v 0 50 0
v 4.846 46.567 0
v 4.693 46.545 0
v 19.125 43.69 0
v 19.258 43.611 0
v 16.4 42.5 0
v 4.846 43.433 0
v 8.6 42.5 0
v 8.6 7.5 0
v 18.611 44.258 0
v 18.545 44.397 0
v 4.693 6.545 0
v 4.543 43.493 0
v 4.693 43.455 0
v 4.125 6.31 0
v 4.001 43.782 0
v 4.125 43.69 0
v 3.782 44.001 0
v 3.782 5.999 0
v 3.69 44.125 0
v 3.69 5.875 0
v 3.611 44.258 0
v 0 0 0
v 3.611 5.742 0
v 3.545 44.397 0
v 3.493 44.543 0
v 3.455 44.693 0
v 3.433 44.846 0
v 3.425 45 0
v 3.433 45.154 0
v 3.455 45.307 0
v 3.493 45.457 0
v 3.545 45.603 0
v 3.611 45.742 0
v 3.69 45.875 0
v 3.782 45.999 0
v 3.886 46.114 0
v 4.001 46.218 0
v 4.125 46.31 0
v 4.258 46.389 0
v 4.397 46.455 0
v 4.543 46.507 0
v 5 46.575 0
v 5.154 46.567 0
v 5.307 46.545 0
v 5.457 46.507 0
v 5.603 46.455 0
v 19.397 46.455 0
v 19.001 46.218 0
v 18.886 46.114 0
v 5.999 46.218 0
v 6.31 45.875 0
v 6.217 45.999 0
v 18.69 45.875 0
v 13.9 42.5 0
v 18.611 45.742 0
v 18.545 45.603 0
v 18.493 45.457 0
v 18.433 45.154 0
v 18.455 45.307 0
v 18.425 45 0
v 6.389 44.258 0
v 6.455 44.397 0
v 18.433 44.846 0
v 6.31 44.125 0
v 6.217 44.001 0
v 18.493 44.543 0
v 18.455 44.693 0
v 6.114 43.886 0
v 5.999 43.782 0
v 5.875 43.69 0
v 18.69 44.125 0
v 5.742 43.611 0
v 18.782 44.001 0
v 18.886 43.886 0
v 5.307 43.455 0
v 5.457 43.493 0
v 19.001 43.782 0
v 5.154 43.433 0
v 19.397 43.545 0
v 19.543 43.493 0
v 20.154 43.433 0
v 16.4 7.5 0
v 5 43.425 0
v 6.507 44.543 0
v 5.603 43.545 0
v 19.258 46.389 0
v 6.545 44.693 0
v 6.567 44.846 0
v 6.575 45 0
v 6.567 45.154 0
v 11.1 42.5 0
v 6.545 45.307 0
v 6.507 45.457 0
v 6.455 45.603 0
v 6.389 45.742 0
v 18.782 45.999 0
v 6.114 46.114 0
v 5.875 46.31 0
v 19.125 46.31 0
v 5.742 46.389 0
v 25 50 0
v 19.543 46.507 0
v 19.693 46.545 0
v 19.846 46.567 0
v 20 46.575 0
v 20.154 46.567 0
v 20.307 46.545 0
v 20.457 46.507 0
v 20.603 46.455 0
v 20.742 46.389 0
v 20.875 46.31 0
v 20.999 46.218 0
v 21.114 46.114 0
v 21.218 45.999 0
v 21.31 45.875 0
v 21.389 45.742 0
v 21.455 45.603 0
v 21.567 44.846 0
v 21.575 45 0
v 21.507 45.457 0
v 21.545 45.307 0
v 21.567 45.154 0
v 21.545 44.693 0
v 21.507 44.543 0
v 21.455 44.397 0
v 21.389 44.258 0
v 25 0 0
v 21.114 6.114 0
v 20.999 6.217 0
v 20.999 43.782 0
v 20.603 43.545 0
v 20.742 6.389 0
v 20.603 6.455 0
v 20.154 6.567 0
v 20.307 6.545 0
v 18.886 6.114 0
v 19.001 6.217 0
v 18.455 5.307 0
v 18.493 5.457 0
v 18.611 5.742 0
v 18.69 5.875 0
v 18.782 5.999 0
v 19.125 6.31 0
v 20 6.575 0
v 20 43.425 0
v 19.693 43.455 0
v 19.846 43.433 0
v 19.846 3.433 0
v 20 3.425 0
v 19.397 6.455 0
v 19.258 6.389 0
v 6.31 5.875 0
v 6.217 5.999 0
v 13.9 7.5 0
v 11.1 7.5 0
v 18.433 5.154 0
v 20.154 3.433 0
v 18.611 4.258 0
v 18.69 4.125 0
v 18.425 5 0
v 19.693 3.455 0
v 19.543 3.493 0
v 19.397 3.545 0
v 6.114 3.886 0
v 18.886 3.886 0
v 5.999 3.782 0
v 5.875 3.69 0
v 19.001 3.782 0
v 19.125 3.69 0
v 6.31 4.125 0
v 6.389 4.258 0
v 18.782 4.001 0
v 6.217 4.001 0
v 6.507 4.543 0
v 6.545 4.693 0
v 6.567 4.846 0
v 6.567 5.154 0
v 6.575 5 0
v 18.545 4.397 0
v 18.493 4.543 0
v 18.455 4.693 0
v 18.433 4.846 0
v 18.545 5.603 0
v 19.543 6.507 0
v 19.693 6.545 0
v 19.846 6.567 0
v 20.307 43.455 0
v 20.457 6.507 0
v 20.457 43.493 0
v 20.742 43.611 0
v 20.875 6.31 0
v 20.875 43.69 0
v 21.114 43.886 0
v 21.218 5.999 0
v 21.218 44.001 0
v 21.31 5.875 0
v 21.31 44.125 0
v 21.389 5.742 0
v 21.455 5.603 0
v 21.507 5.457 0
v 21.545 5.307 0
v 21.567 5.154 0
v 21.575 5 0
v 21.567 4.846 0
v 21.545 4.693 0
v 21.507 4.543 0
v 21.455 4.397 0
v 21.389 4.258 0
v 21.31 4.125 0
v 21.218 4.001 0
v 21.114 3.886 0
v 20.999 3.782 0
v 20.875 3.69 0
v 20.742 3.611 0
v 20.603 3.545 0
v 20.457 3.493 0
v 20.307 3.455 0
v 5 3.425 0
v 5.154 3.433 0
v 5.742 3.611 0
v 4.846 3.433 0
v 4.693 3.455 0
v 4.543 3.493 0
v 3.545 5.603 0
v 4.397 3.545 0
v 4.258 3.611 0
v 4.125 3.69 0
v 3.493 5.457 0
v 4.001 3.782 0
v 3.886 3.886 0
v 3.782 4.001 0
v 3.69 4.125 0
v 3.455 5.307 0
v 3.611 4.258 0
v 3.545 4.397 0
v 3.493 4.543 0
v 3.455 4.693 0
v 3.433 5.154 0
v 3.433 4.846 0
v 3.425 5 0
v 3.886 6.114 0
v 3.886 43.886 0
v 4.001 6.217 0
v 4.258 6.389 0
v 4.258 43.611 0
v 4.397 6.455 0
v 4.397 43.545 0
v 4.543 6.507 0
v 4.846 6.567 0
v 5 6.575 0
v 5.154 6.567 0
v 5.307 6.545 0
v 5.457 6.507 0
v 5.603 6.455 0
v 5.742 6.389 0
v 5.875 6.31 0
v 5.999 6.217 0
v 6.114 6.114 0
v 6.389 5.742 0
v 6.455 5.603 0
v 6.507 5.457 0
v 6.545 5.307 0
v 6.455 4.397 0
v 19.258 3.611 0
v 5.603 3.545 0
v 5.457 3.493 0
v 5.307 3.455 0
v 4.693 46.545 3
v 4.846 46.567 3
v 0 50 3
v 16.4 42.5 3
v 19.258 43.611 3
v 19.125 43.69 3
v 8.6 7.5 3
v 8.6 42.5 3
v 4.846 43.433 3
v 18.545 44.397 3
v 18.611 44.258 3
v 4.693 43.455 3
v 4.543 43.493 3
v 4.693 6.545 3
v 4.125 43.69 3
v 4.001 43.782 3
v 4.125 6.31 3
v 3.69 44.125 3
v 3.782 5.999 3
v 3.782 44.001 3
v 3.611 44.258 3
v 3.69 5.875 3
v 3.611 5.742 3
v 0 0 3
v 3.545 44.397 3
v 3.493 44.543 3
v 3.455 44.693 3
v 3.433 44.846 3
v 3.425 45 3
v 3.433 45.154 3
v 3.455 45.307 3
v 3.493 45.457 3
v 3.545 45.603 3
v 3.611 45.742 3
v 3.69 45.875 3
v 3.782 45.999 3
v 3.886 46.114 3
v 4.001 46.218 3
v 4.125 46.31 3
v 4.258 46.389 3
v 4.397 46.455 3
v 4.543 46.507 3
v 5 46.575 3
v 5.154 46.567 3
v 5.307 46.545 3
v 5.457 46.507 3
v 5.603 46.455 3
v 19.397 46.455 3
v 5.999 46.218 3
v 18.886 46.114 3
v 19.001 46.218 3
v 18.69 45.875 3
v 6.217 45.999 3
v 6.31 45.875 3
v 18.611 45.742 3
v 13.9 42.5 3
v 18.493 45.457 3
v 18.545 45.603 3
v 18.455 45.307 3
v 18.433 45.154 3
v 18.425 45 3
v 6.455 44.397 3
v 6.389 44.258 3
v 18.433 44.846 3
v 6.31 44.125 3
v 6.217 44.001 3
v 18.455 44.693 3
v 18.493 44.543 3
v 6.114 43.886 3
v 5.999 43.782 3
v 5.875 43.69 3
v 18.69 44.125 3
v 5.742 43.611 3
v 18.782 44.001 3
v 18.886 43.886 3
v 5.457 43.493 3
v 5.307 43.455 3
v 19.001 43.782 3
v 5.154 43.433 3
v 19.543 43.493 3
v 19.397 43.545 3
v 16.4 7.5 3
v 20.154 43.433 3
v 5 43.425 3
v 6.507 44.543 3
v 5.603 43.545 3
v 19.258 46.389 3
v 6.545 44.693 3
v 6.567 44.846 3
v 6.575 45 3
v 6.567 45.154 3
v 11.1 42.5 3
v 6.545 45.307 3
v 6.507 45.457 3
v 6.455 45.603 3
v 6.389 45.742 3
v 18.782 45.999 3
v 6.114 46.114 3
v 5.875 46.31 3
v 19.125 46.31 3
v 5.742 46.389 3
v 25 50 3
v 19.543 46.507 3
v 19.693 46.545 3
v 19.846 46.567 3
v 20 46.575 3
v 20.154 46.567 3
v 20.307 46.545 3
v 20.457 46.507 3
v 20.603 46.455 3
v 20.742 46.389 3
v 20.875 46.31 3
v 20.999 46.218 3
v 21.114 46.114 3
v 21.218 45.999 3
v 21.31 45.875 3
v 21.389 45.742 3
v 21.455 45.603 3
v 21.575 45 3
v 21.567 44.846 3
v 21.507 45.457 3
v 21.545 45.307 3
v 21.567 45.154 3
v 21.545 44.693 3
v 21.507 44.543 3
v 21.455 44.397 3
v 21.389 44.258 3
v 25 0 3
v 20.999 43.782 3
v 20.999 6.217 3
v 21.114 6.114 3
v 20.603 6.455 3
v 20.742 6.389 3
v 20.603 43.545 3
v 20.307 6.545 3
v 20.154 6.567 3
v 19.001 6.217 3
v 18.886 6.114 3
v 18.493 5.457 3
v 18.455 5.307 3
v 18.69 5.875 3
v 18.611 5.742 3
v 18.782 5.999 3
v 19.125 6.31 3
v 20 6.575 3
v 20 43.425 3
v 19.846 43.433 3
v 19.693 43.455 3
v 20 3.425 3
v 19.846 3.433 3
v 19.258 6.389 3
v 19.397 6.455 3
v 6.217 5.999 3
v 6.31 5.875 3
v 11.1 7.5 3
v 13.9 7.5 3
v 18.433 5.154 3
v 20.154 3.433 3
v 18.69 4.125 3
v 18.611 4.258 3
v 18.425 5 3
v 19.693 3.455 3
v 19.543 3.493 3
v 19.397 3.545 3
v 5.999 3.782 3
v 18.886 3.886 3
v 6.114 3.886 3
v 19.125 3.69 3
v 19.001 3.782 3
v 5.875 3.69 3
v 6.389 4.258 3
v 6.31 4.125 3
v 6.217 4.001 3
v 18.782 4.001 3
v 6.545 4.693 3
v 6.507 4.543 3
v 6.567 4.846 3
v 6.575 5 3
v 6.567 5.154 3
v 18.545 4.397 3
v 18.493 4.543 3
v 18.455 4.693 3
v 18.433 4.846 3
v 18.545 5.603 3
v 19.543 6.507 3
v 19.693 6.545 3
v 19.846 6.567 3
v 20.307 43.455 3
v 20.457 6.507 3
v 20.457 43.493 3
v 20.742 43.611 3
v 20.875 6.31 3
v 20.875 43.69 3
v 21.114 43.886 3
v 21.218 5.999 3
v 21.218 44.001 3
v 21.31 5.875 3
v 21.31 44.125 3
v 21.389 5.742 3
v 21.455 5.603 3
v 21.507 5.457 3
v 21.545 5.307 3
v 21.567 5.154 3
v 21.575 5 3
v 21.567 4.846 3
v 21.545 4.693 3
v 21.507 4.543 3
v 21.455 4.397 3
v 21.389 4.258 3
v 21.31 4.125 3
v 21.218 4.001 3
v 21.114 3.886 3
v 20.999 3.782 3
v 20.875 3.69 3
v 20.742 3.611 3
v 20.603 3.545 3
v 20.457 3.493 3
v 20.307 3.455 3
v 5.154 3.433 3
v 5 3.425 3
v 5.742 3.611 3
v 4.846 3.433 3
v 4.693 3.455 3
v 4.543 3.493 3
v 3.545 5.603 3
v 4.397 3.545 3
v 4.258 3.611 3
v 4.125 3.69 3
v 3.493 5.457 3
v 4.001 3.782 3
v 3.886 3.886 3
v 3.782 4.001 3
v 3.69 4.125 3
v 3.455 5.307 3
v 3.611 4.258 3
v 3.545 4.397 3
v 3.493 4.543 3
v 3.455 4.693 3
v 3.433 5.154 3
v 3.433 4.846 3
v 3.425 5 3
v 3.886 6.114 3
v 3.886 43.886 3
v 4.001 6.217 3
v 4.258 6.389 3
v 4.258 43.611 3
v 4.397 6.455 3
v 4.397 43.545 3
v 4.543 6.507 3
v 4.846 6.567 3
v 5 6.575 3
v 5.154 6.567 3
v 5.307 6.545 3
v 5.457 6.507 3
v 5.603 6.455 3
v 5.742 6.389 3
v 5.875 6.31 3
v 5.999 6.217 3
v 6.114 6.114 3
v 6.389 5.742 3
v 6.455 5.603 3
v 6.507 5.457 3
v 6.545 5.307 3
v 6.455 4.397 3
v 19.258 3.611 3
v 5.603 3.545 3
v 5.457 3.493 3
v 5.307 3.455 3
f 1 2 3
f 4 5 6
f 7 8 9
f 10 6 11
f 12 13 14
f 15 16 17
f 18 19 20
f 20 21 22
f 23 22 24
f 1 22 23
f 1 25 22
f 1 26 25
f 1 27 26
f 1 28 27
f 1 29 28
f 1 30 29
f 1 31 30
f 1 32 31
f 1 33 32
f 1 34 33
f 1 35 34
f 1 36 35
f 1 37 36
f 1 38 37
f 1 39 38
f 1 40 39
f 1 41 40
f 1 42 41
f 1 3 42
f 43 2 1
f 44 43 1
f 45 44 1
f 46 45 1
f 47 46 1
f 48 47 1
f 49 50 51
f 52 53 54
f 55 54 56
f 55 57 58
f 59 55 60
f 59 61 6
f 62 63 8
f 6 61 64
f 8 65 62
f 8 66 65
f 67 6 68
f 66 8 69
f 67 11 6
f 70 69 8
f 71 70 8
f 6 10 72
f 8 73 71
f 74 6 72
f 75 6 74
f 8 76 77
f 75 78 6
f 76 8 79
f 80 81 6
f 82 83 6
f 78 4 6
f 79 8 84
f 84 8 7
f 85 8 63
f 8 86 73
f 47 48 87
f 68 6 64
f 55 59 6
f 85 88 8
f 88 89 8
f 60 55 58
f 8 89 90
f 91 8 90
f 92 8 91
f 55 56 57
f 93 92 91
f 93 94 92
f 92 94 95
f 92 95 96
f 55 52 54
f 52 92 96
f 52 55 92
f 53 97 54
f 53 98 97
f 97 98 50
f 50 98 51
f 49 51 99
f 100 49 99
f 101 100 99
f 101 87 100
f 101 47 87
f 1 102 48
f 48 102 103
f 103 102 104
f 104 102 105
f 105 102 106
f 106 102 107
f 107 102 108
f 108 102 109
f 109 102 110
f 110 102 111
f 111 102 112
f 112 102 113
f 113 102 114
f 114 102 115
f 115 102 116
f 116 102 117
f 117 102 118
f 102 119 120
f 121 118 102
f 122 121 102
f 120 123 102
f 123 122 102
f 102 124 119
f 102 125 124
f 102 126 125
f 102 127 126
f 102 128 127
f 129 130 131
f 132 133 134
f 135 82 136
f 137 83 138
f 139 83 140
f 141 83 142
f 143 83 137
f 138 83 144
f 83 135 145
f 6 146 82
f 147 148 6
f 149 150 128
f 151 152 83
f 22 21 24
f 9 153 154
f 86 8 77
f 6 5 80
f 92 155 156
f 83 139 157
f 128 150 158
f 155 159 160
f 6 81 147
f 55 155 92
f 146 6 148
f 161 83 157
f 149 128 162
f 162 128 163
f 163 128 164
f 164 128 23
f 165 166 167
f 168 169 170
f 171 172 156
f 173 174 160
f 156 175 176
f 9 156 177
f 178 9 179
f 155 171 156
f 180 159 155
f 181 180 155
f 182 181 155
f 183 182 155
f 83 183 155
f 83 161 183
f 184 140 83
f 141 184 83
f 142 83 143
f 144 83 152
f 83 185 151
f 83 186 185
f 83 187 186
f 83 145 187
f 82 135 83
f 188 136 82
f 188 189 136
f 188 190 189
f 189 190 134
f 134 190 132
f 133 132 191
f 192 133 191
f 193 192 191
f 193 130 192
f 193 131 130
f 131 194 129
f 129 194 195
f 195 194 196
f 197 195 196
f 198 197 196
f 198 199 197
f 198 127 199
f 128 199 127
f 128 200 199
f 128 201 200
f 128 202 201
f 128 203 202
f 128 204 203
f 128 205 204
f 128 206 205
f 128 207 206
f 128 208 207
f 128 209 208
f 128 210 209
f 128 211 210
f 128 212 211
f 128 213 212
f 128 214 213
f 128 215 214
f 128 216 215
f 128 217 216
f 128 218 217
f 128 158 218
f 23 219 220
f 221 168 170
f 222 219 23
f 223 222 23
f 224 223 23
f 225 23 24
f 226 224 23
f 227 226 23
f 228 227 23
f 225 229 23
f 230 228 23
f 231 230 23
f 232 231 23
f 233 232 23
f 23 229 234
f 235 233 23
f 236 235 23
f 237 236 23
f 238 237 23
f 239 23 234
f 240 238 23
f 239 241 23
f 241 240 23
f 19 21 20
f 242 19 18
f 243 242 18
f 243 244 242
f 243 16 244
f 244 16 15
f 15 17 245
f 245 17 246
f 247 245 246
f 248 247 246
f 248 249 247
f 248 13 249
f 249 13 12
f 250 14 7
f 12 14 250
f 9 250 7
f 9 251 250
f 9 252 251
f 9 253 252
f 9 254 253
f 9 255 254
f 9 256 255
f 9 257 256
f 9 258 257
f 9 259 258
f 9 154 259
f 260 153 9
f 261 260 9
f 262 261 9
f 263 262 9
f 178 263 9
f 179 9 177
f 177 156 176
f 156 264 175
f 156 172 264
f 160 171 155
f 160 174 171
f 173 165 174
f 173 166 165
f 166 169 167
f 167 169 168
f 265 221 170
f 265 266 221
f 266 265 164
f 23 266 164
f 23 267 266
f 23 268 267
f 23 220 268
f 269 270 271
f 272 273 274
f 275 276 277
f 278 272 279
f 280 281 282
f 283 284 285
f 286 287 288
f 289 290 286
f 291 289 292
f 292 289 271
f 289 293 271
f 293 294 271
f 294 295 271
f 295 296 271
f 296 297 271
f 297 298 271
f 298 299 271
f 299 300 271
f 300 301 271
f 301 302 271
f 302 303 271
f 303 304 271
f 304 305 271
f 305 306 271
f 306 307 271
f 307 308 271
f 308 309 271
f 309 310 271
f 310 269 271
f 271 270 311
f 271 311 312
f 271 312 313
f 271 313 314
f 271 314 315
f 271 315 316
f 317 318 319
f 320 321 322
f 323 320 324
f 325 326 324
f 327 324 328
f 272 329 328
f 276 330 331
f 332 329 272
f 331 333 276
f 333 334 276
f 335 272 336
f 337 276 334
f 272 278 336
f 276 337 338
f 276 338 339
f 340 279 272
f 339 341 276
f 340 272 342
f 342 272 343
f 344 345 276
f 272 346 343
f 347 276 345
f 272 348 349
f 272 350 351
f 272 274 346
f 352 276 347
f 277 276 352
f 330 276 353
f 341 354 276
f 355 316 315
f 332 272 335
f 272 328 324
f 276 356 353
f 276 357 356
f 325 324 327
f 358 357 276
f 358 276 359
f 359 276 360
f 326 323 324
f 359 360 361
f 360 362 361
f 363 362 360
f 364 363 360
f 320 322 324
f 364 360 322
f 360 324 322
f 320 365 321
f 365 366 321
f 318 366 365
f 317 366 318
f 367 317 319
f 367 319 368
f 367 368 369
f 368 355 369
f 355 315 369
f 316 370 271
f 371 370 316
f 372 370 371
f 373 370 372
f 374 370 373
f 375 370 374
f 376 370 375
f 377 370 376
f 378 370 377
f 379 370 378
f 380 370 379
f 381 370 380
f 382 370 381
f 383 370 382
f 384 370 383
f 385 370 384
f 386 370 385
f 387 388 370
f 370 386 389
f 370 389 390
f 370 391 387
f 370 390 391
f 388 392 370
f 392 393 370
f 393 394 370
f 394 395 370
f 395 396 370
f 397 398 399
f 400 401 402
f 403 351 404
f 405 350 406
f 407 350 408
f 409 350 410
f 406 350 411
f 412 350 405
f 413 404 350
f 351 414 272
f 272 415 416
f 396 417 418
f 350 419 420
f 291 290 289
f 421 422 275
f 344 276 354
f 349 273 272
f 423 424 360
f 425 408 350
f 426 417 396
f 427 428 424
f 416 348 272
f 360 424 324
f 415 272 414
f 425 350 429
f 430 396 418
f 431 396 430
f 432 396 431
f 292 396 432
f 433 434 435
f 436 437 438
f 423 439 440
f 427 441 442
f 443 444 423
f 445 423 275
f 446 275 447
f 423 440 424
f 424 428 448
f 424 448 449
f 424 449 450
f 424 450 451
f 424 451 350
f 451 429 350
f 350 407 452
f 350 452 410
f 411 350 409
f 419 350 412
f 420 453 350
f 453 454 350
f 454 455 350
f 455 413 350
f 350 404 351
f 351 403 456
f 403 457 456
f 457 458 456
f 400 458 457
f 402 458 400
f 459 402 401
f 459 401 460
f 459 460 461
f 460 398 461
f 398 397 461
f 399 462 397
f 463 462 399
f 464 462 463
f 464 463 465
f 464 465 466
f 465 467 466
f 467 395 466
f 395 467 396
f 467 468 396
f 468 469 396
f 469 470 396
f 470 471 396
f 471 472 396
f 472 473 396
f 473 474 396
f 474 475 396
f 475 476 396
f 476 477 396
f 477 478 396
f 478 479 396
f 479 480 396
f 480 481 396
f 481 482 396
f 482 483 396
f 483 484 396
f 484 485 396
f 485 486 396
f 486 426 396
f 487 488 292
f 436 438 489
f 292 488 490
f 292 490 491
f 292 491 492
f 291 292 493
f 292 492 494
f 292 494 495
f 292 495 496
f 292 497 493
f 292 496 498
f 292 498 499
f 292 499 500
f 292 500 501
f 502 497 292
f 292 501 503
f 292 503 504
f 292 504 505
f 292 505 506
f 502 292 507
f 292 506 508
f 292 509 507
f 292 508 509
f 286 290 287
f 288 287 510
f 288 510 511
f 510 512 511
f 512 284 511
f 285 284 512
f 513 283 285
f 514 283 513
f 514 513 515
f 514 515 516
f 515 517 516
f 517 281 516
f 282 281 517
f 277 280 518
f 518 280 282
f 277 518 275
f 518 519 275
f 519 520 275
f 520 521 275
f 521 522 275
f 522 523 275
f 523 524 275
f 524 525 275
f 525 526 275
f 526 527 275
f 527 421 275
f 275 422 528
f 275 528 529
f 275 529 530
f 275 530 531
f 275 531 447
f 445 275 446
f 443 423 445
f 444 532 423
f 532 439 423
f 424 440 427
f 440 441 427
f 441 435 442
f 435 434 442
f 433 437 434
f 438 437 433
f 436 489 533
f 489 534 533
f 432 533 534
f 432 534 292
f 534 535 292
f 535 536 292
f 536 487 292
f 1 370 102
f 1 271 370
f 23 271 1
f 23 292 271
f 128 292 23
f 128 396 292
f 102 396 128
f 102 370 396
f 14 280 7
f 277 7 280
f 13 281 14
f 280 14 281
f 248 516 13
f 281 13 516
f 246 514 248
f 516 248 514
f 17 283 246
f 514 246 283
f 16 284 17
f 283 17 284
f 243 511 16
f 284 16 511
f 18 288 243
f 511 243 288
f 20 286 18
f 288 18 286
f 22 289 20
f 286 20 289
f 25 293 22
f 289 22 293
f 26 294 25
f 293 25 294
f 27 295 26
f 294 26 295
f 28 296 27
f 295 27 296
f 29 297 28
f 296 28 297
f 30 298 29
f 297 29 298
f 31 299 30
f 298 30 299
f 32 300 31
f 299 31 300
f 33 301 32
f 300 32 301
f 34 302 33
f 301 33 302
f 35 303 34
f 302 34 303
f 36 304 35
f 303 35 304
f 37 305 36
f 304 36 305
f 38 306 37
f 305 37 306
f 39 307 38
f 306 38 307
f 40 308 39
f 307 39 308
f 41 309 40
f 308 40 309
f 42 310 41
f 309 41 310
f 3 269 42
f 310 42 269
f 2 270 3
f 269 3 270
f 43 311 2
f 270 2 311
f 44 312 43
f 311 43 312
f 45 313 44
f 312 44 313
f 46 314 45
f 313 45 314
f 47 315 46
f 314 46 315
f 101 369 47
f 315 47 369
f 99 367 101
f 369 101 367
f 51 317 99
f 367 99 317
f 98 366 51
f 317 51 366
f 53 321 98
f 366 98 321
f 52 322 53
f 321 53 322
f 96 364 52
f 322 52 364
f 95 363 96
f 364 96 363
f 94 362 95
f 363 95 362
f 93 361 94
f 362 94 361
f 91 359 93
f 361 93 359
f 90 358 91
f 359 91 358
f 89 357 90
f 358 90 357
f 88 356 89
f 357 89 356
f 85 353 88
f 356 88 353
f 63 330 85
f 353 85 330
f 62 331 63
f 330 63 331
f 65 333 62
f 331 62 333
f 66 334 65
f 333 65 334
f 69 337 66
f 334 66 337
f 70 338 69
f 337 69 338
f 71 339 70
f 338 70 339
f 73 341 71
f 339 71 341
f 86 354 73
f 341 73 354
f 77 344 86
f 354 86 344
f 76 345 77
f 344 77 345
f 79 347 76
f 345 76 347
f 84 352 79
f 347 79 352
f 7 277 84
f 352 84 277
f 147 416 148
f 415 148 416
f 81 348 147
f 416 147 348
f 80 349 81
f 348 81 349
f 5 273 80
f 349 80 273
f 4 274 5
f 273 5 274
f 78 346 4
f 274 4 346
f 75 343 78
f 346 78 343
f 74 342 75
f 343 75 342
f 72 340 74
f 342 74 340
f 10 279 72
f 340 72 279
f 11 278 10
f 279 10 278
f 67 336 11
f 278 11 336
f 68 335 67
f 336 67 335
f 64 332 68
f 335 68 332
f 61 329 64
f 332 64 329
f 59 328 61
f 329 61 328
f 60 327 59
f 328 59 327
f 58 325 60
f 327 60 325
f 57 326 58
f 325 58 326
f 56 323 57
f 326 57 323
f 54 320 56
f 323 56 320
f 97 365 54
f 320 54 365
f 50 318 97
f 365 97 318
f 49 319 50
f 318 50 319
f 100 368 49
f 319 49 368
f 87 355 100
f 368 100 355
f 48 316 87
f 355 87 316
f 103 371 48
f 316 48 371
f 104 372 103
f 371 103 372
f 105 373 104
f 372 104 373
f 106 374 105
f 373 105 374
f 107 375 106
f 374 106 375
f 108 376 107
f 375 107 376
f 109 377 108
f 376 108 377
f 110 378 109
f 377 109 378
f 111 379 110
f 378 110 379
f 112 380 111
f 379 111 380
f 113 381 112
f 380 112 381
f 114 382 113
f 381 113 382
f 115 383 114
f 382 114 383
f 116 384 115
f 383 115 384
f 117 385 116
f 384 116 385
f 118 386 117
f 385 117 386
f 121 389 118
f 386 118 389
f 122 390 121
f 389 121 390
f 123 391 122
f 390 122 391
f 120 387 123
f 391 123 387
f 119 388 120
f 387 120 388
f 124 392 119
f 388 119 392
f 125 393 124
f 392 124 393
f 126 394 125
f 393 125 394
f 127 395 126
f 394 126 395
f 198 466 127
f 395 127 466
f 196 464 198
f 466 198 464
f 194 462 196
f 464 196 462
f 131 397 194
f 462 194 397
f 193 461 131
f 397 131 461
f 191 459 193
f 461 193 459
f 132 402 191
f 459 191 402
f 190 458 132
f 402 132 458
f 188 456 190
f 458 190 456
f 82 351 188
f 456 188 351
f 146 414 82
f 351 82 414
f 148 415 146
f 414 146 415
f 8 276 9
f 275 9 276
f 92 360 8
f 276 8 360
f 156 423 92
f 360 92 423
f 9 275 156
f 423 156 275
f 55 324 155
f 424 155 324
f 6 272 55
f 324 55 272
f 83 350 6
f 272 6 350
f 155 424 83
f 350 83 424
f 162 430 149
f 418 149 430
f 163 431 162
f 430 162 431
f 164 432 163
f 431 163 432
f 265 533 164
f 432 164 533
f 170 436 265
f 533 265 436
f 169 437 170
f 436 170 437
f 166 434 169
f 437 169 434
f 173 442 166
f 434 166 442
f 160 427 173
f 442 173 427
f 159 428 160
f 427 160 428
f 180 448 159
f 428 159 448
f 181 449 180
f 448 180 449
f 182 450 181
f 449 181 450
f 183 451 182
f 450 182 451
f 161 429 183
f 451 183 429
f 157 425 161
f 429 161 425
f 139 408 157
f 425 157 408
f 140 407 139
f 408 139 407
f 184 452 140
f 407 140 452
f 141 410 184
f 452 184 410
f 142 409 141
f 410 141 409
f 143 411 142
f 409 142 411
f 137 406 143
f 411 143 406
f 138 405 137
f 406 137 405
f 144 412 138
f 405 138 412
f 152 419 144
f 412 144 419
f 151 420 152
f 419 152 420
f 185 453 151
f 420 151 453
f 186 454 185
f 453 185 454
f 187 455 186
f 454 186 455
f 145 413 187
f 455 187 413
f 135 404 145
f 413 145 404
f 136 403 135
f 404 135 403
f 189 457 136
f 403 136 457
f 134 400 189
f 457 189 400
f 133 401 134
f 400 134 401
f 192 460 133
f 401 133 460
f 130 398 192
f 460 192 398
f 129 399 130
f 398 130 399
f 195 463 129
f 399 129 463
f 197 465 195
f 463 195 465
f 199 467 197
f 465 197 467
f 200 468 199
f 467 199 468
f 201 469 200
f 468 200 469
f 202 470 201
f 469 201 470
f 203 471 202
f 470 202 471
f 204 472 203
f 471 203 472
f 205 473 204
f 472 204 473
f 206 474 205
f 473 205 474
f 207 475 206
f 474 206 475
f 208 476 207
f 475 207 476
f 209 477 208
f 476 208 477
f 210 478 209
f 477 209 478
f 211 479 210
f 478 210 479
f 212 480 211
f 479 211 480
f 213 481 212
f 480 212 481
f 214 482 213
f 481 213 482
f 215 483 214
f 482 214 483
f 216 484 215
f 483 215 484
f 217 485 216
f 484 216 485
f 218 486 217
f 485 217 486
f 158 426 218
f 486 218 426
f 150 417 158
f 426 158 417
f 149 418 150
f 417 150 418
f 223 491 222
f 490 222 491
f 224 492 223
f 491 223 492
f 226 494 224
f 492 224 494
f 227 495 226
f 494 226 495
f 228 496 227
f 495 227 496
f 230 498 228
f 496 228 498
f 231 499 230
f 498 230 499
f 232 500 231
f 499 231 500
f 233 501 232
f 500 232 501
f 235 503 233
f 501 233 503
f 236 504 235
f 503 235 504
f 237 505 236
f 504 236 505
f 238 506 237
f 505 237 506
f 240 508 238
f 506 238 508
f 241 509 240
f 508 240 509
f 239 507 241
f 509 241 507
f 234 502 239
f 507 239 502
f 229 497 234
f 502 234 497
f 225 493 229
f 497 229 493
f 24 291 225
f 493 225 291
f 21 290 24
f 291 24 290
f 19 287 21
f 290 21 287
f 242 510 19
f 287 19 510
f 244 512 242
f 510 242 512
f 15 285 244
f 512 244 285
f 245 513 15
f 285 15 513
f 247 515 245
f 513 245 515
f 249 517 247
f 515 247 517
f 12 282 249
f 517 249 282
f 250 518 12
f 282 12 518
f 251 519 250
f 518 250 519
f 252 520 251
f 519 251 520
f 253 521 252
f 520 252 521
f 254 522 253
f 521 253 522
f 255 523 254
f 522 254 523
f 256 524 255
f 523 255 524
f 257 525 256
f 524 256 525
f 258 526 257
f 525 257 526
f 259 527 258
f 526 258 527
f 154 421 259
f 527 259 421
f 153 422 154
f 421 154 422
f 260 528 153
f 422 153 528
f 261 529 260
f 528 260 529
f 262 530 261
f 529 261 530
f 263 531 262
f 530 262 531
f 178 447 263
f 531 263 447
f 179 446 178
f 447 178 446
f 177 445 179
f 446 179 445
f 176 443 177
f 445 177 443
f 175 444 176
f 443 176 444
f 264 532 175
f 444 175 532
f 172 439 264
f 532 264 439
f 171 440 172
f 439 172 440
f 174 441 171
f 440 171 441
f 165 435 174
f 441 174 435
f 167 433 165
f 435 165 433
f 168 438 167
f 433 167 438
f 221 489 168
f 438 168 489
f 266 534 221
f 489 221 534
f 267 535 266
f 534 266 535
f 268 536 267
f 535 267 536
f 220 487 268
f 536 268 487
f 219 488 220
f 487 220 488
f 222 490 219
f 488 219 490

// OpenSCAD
// file: miniature-bases/common/params.scad
$fn = $preview ? 32 : 64;

// Value of kerf to apply when lasercutting things.
// Value is based on the experience using Epilog Mini machine in
// Google WFC Makerspace.
kerf = 0.2;

// Spacing between insert and miniatures bases to allow to slick fit.
insert_spacing = 0.2;
magnet_spacing = 0.15;

// Default values
//
// Default diameter of magnets used for my miniatures.
default_magnet_diameter = 3;
base_height = 3;
pin_height = 2.5;
// file: miniature-bases/common/kow.scad
include <params.scad>;

module MagnetSockets(unit_type, only_diagonal = false) {
  baseSize = BaseSize(unit_type);

  translate([ 5, baseSize[1] - 5 ]) children(0);
  translate([ baseSize[0] - 5, 5 ]) children(0);

  if (!only_diagonal) {
    translate([ 5, 5 ]) children(0);
    translate([ baseSize[0] - 5, baseSize[1] - 5 ]) children(0);
  }
}

module Magnet(d = default_magnet_diameter, offset = 0) {
  circle(d = d + offset);
}

module BM4Sockets(unit_type, spacing, only_diagonal = false) {
  MagnetSockets(unit_type = unit_type, only_diagonal = only_diagonal) {
    Magnet(offset = spacing);
  }
}

module Base(unit_type, extraMargin = [ 0, 0 ]) {
  square(BaseSize(unit_type) + extraMargin);
}

function BaseSize(unit_type) = unit_type == "infantry"         ? [ 20, 20 ]
                               : unit_type == "heavy_infantry" ? [ 25, 25 ]
                               : unit_type == "cavalry"        ? [ 25, 50 ]
                               : unit_type == "lrginf"         ? [ 40, 40 ]
                               : unit_type == "lrgcav"         ? [ 50, 50 ]
                               : unit_type == "titan"          ? [ 75, 75 ]
                                                               : [ 10, 10 ];

function BaseNum(unit_type, unitSize) =
    unit_type == "infantry"  ? unitSize == "legion"     ? [ 10, 6 ]
                               : unitSize == "horde"    ? [ 10, 4 ]
                               : unitSize == "regiment" ? [ 5, 4 ]
                                                        : [ 5, 2 ]
    : unit_type == "cavalry" ? unitSize == "regiment" ? [ 5, 2 ] : [ 5, 1 ]
    : unit_type == "lrginf"  ? unitSize == "regiment" ? [ 3, 1 ] : [ 3, 2 ]
    : unit_type == "lrgcav"  ? unitSize == "regiment" ? [ 3, 1 ]
                               : unitSize == "horde"  ? [ 3, 2 ]
                                                      : [ 1, 1 ]
                             : [ 1, 1 ];
// file: miniature-bases/libbase.scad
include <common/kow.scad>;

module MagnetHole() { Magnet(offset = magnet_spacing); } 

module BaseBM4(unit_type, only_diagonal = false) {
  linear_extrude(height = base_height) {
    difference() {
      Base(unit_type = unit_type);
      union() {
        MagnetSockets(unit_type = unit_type, only_diagonal = only_diagonal) {
          MagnetHole();
        }
        children();
      }
    }
  }
}

SLOTTA_ANGLE = 0;
SLOTTA_SLOT_MARGIN = 1.5; 
SLOT_WIDTH = 1.7;  


module SlottaBM4(a = SLOTTA_ANGLE, unit_type = "infantry", slot_margin = SLOTTA_SLOT_MARGIN) {
  base_size = BaseSize(unit_type);

  // slot_length = 18; for a = 0 (as in GW bases)
  // total_slot_margin = 4; for a = 45 (as in GW bases)

  slot_length =
      (base_size[0] - 2 * slot_margin - cos(90 - a) * SLOT_WIDTH) / cos(a);

  BaseBM4(unit_type = unit_type, only_diagonal = true) {
    translate(0.5 * base_size) rotate(a)
        square([ slot_length, SLOT_WIDTH ], center = true);
  };
}

module CavalrySlot() {
  slotWidth = 2.5;
  slotLength = 35;
  slotSpacing = 2.8;
  baseSize = BaseSize("cavalry");

  translate([
    (baseSize[0] - 2 * slotWidth - slotSpacing) / 2,
    (baseSize[1] - slotLength) / 2
  ]) {
    square([ slotWidth, slotLength ]);
    translate([ slotSpacing + slotWidth, 0 ]) square([ slotWidth, slotLength ]);
  }
}
// main file
use <miniature-bases/libbase.scad>

$fn = $preview ? 32 : 64;

BaseBM4("cavalry") { CavalrySlot(); }
